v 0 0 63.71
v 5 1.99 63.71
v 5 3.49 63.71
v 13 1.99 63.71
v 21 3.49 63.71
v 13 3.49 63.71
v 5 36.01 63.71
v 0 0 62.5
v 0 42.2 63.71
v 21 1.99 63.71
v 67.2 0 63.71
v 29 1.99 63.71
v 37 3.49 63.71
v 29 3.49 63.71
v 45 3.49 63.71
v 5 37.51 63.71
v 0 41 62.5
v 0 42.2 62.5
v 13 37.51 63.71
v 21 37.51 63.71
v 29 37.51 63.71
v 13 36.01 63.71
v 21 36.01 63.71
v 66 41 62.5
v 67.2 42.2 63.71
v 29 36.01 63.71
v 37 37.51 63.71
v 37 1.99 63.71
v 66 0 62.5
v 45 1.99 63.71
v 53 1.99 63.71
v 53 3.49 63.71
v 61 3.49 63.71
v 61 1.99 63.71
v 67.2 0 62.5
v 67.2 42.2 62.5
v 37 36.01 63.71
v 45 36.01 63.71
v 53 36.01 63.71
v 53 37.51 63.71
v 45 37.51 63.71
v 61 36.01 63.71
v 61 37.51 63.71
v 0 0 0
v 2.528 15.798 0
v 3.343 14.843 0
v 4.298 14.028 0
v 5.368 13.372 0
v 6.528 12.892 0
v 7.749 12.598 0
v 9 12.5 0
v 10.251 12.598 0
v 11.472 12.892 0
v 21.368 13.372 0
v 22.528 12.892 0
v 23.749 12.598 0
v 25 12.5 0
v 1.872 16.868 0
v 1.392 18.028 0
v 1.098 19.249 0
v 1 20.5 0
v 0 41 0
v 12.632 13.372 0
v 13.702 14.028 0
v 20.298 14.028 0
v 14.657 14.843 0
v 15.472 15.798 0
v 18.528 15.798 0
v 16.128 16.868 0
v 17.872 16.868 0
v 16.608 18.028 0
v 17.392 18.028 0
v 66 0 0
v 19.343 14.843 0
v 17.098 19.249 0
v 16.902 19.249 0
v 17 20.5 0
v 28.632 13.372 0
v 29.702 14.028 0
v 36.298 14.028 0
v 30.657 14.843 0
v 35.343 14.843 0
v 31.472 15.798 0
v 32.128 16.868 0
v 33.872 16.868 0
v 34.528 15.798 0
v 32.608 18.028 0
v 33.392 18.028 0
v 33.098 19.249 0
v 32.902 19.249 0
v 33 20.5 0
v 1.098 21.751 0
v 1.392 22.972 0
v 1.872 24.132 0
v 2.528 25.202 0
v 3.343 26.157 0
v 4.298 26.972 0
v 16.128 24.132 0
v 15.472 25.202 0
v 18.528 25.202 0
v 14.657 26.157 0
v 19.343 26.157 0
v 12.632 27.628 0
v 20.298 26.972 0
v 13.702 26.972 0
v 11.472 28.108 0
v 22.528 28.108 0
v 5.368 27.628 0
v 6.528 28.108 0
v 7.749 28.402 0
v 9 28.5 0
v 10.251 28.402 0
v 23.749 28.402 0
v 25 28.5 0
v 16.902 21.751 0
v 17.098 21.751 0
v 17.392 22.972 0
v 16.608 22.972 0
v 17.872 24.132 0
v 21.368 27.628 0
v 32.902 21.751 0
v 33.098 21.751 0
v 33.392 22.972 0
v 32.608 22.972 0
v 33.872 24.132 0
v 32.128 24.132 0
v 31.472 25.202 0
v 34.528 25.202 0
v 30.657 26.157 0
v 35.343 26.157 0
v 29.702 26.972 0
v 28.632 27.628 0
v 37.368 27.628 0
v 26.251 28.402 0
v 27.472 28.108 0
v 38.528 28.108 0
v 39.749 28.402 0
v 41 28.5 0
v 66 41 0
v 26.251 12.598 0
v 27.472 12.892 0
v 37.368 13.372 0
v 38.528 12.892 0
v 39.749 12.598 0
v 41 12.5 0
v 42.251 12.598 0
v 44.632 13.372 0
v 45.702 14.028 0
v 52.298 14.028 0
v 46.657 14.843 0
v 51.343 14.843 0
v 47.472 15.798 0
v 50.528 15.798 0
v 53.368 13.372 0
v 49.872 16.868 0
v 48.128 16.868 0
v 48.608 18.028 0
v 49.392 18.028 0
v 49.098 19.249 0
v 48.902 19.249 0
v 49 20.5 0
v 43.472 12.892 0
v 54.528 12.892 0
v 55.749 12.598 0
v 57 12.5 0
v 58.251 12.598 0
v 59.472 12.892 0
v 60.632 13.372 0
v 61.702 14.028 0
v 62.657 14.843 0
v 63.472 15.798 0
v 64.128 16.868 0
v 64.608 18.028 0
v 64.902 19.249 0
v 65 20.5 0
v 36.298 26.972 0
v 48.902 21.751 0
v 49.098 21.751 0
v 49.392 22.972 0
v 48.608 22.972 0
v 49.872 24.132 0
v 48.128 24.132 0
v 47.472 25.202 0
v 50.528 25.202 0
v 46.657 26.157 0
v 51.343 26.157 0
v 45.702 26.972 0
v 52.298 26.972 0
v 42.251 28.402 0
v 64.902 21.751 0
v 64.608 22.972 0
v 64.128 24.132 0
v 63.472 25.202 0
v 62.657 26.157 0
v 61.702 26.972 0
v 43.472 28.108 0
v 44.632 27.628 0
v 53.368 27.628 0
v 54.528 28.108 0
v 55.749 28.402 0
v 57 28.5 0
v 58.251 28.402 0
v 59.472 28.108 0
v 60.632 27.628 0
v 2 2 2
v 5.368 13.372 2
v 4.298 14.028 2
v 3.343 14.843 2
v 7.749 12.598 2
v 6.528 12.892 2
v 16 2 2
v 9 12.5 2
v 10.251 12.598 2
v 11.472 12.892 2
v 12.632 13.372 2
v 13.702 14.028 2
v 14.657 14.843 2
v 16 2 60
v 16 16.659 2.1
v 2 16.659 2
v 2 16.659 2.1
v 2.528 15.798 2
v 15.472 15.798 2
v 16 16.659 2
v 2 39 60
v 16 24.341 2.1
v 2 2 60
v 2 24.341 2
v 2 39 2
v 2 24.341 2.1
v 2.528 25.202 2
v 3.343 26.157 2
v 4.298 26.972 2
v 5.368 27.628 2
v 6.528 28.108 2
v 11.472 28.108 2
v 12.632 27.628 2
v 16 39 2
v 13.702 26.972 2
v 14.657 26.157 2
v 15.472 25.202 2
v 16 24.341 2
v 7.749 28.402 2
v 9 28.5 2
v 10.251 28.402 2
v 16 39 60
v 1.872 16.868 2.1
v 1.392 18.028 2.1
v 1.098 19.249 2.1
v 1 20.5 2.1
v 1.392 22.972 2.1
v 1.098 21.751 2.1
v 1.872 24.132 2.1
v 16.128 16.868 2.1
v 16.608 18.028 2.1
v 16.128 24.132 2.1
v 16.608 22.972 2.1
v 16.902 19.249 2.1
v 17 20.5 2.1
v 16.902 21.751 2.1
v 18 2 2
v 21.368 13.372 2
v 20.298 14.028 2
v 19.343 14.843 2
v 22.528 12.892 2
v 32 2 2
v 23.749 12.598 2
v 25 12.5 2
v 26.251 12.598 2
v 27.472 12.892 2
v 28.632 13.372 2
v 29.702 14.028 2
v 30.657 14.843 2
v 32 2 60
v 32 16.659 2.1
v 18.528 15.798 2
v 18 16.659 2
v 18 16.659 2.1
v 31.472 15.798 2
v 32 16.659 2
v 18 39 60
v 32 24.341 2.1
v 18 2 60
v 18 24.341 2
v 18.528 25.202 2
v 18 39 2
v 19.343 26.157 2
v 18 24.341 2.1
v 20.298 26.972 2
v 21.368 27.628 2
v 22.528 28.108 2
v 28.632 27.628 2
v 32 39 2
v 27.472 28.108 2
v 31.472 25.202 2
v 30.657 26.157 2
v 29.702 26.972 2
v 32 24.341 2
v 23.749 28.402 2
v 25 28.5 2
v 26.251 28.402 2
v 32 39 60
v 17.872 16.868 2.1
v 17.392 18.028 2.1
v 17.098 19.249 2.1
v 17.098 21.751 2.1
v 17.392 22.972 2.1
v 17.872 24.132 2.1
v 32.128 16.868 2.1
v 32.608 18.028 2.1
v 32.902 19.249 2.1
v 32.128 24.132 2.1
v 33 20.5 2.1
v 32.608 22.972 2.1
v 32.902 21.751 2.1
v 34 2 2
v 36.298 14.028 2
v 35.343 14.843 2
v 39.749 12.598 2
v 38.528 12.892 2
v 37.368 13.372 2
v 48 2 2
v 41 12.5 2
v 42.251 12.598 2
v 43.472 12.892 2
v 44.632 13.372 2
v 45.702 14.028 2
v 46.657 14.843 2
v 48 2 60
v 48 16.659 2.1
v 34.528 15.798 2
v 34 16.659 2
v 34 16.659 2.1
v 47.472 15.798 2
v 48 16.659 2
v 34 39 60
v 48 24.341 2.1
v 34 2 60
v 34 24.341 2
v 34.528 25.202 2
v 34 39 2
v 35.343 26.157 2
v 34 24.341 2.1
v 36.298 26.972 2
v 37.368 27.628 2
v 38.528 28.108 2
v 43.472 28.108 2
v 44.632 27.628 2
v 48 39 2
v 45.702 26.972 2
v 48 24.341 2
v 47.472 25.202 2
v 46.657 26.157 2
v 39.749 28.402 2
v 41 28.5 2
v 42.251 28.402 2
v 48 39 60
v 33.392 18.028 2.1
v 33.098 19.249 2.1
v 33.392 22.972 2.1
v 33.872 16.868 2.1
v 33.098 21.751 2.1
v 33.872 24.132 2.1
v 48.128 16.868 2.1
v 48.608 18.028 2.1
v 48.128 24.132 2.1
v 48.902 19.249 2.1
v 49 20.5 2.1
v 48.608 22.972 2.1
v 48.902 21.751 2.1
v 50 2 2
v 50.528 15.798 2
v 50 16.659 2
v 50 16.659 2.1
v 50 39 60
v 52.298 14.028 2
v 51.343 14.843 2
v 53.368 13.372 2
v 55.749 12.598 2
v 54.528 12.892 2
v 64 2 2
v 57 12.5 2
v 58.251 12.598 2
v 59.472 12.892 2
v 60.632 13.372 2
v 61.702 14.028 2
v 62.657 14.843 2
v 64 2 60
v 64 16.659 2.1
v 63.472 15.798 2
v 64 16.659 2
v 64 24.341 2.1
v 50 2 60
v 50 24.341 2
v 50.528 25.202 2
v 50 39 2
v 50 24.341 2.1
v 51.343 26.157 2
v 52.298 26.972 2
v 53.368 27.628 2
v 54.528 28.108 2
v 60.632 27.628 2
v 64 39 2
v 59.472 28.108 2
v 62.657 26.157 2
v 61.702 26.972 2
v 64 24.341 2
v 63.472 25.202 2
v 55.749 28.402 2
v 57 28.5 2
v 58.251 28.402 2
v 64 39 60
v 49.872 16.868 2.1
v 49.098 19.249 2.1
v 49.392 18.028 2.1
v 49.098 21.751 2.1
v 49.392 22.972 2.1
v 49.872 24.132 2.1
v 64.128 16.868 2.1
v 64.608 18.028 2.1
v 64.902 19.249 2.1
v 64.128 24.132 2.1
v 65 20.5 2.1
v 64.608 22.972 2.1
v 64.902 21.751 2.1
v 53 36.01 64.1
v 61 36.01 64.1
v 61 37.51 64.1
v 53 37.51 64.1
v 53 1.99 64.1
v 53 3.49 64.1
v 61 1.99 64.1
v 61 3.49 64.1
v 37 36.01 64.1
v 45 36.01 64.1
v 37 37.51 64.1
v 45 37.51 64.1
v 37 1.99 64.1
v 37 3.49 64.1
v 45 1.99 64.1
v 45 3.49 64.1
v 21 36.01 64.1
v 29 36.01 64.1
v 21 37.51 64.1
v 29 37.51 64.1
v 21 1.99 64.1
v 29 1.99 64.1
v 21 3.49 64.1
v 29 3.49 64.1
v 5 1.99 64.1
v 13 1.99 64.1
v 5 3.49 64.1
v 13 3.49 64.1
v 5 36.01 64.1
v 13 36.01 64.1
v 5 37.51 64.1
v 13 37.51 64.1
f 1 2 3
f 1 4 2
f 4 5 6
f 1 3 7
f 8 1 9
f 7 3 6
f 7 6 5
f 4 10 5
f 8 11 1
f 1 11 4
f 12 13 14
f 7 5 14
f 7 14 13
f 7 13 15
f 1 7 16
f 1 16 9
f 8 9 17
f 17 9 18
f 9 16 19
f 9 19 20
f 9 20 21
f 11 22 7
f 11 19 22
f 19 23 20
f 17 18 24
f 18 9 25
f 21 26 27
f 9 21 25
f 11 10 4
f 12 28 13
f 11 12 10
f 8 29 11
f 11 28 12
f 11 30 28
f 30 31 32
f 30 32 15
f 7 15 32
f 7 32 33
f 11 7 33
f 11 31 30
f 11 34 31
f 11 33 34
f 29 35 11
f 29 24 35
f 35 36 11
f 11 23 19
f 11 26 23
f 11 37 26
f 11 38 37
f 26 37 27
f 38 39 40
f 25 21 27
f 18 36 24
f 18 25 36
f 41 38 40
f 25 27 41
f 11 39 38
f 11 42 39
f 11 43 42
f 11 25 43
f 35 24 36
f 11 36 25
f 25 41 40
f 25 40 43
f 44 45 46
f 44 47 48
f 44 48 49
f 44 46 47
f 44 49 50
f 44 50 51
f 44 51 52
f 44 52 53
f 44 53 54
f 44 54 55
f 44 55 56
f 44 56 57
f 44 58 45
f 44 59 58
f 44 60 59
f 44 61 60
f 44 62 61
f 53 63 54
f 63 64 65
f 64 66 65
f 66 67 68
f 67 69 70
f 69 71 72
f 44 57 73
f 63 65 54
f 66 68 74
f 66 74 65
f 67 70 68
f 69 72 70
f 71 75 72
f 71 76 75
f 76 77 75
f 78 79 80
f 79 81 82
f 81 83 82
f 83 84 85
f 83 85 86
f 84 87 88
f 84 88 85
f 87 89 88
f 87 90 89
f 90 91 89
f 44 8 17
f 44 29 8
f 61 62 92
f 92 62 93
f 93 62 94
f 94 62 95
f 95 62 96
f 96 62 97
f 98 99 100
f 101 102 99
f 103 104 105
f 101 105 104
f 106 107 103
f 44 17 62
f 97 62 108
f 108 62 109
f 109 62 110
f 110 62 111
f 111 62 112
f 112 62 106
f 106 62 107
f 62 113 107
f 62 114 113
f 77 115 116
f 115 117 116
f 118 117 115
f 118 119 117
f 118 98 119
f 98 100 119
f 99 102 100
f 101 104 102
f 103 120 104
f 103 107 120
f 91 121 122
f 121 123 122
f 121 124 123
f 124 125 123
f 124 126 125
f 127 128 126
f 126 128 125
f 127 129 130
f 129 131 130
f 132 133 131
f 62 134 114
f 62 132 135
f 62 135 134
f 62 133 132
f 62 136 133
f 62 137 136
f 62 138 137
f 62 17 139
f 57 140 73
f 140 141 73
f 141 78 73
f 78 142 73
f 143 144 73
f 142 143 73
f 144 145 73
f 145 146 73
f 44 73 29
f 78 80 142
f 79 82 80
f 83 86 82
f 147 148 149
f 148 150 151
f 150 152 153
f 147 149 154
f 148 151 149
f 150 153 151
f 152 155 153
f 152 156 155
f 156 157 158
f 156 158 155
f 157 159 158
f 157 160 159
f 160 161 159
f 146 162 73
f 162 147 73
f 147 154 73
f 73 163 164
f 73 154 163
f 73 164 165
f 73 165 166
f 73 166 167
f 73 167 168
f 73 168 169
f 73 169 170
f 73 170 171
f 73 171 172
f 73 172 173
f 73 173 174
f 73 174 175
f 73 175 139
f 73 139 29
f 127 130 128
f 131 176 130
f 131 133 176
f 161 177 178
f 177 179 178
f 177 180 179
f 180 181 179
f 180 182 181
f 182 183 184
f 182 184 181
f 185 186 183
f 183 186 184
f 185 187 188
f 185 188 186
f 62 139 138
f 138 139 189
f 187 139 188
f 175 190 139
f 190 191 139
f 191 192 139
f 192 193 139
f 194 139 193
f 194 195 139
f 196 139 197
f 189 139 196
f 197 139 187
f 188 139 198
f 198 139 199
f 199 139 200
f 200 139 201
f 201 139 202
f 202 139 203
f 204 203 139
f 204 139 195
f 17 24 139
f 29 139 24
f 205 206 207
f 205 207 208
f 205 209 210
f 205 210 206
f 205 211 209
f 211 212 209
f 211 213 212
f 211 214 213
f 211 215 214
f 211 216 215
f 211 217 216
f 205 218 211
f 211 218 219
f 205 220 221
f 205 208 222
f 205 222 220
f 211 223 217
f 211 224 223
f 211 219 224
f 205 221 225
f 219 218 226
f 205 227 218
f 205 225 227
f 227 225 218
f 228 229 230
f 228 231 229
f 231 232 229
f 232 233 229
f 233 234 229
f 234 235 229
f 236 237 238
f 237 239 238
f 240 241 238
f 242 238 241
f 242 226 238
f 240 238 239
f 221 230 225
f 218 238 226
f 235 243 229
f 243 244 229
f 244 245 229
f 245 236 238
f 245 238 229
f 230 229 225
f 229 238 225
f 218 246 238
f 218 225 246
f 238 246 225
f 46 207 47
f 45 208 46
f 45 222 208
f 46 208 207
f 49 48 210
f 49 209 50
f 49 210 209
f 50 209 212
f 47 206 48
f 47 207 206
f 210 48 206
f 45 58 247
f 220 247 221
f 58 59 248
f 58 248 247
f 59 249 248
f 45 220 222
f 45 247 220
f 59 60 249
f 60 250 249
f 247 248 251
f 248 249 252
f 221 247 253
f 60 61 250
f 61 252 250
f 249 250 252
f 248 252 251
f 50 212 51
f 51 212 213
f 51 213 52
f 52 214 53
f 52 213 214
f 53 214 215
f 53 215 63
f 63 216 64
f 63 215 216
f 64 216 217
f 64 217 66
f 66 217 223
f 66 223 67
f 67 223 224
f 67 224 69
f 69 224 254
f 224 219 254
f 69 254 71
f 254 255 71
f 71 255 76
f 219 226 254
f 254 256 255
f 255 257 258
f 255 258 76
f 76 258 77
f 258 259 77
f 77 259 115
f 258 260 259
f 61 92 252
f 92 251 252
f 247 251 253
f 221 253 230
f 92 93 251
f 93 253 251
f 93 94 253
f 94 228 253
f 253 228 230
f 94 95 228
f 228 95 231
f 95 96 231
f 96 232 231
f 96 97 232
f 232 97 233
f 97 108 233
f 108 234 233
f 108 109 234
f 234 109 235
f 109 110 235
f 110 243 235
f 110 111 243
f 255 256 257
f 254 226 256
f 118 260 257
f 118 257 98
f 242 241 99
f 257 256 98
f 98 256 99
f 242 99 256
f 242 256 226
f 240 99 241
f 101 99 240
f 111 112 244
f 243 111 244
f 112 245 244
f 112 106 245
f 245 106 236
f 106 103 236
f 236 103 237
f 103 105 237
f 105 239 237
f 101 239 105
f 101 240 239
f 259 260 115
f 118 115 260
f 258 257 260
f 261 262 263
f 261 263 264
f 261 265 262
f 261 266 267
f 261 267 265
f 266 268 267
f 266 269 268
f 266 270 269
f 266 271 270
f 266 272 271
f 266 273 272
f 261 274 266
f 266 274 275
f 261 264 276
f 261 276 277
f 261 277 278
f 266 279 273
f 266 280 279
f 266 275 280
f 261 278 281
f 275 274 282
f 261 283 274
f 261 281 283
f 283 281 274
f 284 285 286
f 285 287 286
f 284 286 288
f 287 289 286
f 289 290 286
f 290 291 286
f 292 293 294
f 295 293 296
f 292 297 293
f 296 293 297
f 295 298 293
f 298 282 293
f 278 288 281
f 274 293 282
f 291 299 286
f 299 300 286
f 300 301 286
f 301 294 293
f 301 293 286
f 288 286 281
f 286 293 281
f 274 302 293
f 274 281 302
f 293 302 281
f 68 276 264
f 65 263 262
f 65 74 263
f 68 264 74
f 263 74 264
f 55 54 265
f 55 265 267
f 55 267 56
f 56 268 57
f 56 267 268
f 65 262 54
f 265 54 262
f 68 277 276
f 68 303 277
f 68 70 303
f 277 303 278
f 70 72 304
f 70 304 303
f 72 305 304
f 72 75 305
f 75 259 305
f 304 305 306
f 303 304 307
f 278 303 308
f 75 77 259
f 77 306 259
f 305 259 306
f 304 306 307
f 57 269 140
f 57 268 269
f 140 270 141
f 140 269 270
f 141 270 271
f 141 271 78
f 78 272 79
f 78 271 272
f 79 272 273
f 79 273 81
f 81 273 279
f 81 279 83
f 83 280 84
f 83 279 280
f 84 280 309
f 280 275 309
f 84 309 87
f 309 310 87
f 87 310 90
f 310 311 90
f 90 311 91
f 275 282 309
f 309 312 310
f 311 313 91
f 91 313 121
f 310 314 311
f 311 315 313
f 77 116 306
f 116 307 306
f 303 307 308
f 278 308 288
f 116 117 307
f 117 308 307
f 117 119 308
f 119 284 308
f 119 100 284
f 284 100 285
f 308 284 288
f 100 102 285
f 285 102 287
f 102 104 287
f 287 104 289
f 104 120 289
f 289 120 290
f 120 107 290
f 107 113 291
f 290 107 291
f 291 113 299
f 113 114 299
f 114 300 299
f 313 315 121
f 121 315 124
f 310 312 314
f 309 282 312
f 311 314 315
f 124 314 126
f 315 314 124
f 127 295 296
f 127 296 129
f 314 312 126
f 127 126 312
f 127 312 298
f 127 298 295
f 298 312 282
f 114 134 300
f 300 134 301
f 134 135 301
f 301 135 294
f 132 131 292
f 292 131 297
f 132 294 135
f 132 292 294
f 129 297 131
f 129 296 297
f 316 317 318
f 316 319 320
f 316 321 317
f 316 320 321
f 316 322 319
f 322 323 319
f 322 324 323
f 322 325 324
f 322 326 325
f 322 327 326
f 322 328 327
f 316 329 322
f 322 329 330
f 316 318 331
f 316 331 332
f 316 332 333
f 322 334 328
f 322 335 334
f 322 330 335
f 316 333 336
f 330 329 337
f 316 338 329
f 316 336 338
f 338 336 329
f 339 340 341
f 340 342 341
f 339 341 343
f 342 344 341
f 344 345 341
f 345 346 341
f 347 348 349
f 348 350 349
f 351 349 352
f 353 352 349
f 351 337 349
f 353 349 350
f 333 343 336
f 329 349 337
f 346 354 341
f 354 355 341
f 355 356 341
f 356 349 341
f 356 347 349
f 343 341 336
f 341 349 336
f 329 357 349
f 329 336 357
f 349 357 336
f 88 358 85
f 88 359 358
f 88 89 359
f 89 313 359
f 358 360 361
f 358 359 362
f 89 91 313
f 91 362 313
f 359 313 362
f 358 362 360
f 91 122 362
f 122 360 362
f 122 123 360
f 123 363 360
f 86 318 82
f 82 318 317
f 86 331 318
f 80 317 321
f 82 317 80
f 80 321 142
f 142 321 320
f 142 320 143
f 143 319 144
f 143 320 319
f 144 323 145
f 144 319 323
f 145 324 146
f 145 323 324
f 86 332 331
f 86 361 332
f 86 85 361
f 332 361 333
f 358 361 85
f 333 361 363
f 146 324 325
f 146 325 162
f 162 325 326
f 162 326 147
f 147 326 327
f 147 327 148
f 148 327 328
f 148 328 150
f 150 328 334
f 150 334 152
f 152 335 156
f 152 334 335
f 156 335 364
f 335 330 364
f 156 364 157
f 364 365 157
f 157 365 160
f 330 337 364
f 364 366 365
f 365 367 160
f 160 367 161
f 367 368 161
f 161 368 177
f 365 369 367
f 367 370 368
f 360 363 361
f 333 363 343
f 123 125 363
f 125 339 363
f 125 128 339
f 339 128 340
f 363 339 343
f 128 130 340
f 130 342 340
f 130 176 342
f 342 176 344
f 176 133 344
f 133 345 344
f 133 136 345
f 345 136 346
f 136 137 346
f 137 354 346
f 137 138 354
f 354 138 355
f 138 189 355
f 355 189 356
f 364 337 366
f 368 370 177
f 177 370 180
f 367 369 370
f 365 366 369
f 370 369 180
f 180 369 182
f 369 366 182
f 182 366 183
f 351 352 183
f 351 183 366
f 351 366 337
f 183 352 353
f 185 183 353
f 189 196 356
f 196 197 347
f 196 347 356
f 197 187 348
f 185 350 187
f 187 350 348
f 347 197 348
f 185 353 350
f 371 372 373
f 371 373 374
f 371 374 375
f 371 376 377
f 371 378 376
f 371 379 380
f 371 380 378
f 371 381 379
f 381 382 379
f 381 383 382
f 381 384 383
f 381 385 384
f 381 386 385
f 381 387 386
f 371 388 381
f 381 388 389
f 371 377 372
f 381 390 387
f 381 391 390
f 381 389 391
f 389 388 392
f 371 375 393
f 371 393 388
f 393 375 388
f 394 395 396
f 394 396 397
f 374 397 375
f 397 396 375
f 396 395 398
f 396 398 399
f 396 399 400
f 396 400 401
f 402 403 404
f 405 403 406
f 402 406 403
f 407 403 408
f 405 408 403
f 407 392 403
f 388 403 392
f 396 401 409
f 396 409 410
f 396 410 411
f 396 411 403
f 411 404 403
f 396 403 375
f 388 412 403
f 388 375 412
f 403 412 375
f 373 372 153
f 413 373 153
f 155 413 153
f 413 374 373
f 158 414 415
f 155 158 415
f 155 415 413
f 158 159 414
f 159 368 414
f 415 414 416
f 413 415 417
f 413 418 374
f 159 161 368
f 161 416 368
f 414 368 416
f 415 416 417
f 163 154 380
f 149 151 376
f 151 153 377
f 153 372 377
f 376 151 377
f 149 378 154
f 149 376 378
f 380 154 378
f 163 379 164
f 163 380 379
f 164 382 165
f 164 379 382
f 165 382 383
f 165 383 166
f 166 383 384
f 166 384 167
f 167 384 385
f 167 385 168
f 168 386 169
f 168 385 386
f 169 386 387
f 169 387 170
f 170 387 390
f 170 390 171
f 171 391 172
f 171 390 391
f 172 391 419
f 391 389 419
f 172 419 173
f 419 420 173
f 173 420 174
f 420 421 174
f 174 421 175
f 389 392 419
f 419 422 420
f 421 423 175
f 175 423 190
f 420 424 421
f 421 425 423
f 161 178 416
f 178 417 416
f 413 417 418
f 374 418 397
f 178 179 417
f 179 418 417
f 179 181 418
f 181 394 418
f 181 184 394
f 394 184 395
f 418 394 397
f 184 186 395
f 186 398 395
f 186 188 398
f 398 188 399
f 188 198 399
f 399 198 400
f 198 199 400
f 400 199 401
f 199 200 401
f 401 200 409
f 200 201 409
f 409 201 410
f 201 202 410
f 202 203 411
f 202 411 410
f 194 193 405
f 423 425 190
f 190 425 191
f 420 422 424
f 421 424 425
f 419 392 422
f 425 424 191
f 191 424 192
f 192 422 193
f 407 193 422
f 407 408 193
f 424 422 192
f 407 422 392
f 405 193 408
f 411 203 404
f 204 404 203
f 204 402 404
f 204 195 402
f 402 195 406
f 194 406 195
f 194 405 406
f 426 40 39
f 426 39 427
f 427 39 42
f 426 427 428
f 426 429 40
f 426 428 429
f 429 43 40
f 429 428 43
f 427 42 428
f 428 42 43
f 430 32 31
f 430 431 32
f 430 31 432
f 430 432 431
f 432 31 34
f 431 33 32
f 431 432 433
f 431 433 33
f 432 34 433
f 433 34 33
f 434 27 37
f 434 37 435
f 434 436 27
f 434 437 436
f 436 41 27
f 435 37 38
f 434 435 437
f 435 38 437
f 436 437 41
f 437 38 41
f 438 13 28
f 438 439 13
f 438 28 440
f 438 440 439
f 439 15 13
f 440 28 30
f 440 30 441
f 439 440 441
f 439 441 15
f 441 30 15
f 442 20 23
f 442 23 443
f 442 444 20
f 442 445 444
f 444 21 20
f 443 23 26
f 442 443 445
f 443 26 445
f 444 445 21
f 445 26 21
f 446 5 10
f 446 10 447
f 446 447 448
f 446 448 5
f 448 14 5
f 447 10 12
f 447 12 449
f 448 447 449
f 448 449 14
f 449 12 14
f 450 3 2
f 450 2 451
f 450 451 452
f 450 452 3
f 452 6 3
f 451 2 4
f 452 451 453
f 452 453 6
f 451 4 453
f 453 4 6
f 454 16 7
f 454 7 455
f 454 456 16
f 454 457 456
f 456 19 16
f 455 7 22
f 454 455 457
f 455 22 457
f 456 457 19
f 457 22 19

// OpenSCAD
// Olympus BLS-5 4x1 upright case with snap-fit and finger holes
// Battery: 56 x 36 x 13 mm (H x W x T)

// Parameters
cell_depth = 14;      // along X (battery thickness + clearance)
cell_width = 37;      // along Y (battery width + clearance)
cell_height = 58;     // along Z (battery height + clearance)
wall = 2;             // wall thickness and inter-cell wall
floor = 2;            // bottom thickness
fillet = 1.2;         // small top edge softening
snap_thickness = 1.5;
snap_length = 8;
snap_inset = 1.2;     // inward lip
snap_gap = 0.6;       // gap above battery for flex
finger_r = 8;         // finger push hole radius

cells = 4;

// Derived
case_length = cells*cell_depth + (cells+1)*wall; // X
case_width  = cell_width + 2*wall;               // Y
case_height = floor + cell_height + snap_thickness + 1; // Z

module battery_slot(ix){
    translate([wall + ix*(cell_depth+wall), wall, floor])
        cube([cell_depth, cell_width, cell_height]);
    // finger hole
    translate([wall + ix*(cell_depth+wall) + cell_depth/2,
               wall + cell_width/2,
               0])
        cylinder(h=floor+0.1, r=finger_r, $fn=40);
}

module snap_tabs(){
    for(ix=[0:cells-1]){
        x0 = wall + ix*(cell_depth+wall);
        y_left = wall - 0.01;
        y_right = wall + cell_width - snap_thickness + 0.01;
        z0 = floor + cell_height + snap_gap;
        translate([x0 + (cell_depth - snap_length)/2, y_left, z0])
            snap_tab();
        translate([x0 + (cell_depth - snap_length)/2, y_right, z0])
            mirror([0,1,0]) snap_tab();
    }
}

module snap_tab(){
    // simple cantilever with small inward hook
    union(){
        cube([snap_length, snap_thickness, snap_thickness + 2]);
        translate([0, snap_thickness, snap_thickness])
            cube([snap_length, snap_inset, snap_thickness]);
    }
}

module case_body(){
    difference(){
        // Outer box with softened top via minkowski
        union(){
            cube([case_length, case_width, case_height]);
            translate([0,0,case_height])
                minkowski(){
                    cube([case_length, case_width, fillet]);
                    cube([fillet, fillet, 0.01]);
                }
        }
        // Four cavities and finger holes
        for(ix=[0:cells-1]) battery_slot(ix);
        // Front/back small through-holes for ventilation
        for(ix=[0:cells-1]){
            translate([wall + ix*(cell_depth+wall) + cell_depth/2, -0.1, floor + cell_height/2])
                rotate([90,0,0]) cylinder(h=case_width+0.2, r=1.5, $fn=20);
        }
    }
}

// Assembly
union(){
    case_body();
    snap_tabs();
}
